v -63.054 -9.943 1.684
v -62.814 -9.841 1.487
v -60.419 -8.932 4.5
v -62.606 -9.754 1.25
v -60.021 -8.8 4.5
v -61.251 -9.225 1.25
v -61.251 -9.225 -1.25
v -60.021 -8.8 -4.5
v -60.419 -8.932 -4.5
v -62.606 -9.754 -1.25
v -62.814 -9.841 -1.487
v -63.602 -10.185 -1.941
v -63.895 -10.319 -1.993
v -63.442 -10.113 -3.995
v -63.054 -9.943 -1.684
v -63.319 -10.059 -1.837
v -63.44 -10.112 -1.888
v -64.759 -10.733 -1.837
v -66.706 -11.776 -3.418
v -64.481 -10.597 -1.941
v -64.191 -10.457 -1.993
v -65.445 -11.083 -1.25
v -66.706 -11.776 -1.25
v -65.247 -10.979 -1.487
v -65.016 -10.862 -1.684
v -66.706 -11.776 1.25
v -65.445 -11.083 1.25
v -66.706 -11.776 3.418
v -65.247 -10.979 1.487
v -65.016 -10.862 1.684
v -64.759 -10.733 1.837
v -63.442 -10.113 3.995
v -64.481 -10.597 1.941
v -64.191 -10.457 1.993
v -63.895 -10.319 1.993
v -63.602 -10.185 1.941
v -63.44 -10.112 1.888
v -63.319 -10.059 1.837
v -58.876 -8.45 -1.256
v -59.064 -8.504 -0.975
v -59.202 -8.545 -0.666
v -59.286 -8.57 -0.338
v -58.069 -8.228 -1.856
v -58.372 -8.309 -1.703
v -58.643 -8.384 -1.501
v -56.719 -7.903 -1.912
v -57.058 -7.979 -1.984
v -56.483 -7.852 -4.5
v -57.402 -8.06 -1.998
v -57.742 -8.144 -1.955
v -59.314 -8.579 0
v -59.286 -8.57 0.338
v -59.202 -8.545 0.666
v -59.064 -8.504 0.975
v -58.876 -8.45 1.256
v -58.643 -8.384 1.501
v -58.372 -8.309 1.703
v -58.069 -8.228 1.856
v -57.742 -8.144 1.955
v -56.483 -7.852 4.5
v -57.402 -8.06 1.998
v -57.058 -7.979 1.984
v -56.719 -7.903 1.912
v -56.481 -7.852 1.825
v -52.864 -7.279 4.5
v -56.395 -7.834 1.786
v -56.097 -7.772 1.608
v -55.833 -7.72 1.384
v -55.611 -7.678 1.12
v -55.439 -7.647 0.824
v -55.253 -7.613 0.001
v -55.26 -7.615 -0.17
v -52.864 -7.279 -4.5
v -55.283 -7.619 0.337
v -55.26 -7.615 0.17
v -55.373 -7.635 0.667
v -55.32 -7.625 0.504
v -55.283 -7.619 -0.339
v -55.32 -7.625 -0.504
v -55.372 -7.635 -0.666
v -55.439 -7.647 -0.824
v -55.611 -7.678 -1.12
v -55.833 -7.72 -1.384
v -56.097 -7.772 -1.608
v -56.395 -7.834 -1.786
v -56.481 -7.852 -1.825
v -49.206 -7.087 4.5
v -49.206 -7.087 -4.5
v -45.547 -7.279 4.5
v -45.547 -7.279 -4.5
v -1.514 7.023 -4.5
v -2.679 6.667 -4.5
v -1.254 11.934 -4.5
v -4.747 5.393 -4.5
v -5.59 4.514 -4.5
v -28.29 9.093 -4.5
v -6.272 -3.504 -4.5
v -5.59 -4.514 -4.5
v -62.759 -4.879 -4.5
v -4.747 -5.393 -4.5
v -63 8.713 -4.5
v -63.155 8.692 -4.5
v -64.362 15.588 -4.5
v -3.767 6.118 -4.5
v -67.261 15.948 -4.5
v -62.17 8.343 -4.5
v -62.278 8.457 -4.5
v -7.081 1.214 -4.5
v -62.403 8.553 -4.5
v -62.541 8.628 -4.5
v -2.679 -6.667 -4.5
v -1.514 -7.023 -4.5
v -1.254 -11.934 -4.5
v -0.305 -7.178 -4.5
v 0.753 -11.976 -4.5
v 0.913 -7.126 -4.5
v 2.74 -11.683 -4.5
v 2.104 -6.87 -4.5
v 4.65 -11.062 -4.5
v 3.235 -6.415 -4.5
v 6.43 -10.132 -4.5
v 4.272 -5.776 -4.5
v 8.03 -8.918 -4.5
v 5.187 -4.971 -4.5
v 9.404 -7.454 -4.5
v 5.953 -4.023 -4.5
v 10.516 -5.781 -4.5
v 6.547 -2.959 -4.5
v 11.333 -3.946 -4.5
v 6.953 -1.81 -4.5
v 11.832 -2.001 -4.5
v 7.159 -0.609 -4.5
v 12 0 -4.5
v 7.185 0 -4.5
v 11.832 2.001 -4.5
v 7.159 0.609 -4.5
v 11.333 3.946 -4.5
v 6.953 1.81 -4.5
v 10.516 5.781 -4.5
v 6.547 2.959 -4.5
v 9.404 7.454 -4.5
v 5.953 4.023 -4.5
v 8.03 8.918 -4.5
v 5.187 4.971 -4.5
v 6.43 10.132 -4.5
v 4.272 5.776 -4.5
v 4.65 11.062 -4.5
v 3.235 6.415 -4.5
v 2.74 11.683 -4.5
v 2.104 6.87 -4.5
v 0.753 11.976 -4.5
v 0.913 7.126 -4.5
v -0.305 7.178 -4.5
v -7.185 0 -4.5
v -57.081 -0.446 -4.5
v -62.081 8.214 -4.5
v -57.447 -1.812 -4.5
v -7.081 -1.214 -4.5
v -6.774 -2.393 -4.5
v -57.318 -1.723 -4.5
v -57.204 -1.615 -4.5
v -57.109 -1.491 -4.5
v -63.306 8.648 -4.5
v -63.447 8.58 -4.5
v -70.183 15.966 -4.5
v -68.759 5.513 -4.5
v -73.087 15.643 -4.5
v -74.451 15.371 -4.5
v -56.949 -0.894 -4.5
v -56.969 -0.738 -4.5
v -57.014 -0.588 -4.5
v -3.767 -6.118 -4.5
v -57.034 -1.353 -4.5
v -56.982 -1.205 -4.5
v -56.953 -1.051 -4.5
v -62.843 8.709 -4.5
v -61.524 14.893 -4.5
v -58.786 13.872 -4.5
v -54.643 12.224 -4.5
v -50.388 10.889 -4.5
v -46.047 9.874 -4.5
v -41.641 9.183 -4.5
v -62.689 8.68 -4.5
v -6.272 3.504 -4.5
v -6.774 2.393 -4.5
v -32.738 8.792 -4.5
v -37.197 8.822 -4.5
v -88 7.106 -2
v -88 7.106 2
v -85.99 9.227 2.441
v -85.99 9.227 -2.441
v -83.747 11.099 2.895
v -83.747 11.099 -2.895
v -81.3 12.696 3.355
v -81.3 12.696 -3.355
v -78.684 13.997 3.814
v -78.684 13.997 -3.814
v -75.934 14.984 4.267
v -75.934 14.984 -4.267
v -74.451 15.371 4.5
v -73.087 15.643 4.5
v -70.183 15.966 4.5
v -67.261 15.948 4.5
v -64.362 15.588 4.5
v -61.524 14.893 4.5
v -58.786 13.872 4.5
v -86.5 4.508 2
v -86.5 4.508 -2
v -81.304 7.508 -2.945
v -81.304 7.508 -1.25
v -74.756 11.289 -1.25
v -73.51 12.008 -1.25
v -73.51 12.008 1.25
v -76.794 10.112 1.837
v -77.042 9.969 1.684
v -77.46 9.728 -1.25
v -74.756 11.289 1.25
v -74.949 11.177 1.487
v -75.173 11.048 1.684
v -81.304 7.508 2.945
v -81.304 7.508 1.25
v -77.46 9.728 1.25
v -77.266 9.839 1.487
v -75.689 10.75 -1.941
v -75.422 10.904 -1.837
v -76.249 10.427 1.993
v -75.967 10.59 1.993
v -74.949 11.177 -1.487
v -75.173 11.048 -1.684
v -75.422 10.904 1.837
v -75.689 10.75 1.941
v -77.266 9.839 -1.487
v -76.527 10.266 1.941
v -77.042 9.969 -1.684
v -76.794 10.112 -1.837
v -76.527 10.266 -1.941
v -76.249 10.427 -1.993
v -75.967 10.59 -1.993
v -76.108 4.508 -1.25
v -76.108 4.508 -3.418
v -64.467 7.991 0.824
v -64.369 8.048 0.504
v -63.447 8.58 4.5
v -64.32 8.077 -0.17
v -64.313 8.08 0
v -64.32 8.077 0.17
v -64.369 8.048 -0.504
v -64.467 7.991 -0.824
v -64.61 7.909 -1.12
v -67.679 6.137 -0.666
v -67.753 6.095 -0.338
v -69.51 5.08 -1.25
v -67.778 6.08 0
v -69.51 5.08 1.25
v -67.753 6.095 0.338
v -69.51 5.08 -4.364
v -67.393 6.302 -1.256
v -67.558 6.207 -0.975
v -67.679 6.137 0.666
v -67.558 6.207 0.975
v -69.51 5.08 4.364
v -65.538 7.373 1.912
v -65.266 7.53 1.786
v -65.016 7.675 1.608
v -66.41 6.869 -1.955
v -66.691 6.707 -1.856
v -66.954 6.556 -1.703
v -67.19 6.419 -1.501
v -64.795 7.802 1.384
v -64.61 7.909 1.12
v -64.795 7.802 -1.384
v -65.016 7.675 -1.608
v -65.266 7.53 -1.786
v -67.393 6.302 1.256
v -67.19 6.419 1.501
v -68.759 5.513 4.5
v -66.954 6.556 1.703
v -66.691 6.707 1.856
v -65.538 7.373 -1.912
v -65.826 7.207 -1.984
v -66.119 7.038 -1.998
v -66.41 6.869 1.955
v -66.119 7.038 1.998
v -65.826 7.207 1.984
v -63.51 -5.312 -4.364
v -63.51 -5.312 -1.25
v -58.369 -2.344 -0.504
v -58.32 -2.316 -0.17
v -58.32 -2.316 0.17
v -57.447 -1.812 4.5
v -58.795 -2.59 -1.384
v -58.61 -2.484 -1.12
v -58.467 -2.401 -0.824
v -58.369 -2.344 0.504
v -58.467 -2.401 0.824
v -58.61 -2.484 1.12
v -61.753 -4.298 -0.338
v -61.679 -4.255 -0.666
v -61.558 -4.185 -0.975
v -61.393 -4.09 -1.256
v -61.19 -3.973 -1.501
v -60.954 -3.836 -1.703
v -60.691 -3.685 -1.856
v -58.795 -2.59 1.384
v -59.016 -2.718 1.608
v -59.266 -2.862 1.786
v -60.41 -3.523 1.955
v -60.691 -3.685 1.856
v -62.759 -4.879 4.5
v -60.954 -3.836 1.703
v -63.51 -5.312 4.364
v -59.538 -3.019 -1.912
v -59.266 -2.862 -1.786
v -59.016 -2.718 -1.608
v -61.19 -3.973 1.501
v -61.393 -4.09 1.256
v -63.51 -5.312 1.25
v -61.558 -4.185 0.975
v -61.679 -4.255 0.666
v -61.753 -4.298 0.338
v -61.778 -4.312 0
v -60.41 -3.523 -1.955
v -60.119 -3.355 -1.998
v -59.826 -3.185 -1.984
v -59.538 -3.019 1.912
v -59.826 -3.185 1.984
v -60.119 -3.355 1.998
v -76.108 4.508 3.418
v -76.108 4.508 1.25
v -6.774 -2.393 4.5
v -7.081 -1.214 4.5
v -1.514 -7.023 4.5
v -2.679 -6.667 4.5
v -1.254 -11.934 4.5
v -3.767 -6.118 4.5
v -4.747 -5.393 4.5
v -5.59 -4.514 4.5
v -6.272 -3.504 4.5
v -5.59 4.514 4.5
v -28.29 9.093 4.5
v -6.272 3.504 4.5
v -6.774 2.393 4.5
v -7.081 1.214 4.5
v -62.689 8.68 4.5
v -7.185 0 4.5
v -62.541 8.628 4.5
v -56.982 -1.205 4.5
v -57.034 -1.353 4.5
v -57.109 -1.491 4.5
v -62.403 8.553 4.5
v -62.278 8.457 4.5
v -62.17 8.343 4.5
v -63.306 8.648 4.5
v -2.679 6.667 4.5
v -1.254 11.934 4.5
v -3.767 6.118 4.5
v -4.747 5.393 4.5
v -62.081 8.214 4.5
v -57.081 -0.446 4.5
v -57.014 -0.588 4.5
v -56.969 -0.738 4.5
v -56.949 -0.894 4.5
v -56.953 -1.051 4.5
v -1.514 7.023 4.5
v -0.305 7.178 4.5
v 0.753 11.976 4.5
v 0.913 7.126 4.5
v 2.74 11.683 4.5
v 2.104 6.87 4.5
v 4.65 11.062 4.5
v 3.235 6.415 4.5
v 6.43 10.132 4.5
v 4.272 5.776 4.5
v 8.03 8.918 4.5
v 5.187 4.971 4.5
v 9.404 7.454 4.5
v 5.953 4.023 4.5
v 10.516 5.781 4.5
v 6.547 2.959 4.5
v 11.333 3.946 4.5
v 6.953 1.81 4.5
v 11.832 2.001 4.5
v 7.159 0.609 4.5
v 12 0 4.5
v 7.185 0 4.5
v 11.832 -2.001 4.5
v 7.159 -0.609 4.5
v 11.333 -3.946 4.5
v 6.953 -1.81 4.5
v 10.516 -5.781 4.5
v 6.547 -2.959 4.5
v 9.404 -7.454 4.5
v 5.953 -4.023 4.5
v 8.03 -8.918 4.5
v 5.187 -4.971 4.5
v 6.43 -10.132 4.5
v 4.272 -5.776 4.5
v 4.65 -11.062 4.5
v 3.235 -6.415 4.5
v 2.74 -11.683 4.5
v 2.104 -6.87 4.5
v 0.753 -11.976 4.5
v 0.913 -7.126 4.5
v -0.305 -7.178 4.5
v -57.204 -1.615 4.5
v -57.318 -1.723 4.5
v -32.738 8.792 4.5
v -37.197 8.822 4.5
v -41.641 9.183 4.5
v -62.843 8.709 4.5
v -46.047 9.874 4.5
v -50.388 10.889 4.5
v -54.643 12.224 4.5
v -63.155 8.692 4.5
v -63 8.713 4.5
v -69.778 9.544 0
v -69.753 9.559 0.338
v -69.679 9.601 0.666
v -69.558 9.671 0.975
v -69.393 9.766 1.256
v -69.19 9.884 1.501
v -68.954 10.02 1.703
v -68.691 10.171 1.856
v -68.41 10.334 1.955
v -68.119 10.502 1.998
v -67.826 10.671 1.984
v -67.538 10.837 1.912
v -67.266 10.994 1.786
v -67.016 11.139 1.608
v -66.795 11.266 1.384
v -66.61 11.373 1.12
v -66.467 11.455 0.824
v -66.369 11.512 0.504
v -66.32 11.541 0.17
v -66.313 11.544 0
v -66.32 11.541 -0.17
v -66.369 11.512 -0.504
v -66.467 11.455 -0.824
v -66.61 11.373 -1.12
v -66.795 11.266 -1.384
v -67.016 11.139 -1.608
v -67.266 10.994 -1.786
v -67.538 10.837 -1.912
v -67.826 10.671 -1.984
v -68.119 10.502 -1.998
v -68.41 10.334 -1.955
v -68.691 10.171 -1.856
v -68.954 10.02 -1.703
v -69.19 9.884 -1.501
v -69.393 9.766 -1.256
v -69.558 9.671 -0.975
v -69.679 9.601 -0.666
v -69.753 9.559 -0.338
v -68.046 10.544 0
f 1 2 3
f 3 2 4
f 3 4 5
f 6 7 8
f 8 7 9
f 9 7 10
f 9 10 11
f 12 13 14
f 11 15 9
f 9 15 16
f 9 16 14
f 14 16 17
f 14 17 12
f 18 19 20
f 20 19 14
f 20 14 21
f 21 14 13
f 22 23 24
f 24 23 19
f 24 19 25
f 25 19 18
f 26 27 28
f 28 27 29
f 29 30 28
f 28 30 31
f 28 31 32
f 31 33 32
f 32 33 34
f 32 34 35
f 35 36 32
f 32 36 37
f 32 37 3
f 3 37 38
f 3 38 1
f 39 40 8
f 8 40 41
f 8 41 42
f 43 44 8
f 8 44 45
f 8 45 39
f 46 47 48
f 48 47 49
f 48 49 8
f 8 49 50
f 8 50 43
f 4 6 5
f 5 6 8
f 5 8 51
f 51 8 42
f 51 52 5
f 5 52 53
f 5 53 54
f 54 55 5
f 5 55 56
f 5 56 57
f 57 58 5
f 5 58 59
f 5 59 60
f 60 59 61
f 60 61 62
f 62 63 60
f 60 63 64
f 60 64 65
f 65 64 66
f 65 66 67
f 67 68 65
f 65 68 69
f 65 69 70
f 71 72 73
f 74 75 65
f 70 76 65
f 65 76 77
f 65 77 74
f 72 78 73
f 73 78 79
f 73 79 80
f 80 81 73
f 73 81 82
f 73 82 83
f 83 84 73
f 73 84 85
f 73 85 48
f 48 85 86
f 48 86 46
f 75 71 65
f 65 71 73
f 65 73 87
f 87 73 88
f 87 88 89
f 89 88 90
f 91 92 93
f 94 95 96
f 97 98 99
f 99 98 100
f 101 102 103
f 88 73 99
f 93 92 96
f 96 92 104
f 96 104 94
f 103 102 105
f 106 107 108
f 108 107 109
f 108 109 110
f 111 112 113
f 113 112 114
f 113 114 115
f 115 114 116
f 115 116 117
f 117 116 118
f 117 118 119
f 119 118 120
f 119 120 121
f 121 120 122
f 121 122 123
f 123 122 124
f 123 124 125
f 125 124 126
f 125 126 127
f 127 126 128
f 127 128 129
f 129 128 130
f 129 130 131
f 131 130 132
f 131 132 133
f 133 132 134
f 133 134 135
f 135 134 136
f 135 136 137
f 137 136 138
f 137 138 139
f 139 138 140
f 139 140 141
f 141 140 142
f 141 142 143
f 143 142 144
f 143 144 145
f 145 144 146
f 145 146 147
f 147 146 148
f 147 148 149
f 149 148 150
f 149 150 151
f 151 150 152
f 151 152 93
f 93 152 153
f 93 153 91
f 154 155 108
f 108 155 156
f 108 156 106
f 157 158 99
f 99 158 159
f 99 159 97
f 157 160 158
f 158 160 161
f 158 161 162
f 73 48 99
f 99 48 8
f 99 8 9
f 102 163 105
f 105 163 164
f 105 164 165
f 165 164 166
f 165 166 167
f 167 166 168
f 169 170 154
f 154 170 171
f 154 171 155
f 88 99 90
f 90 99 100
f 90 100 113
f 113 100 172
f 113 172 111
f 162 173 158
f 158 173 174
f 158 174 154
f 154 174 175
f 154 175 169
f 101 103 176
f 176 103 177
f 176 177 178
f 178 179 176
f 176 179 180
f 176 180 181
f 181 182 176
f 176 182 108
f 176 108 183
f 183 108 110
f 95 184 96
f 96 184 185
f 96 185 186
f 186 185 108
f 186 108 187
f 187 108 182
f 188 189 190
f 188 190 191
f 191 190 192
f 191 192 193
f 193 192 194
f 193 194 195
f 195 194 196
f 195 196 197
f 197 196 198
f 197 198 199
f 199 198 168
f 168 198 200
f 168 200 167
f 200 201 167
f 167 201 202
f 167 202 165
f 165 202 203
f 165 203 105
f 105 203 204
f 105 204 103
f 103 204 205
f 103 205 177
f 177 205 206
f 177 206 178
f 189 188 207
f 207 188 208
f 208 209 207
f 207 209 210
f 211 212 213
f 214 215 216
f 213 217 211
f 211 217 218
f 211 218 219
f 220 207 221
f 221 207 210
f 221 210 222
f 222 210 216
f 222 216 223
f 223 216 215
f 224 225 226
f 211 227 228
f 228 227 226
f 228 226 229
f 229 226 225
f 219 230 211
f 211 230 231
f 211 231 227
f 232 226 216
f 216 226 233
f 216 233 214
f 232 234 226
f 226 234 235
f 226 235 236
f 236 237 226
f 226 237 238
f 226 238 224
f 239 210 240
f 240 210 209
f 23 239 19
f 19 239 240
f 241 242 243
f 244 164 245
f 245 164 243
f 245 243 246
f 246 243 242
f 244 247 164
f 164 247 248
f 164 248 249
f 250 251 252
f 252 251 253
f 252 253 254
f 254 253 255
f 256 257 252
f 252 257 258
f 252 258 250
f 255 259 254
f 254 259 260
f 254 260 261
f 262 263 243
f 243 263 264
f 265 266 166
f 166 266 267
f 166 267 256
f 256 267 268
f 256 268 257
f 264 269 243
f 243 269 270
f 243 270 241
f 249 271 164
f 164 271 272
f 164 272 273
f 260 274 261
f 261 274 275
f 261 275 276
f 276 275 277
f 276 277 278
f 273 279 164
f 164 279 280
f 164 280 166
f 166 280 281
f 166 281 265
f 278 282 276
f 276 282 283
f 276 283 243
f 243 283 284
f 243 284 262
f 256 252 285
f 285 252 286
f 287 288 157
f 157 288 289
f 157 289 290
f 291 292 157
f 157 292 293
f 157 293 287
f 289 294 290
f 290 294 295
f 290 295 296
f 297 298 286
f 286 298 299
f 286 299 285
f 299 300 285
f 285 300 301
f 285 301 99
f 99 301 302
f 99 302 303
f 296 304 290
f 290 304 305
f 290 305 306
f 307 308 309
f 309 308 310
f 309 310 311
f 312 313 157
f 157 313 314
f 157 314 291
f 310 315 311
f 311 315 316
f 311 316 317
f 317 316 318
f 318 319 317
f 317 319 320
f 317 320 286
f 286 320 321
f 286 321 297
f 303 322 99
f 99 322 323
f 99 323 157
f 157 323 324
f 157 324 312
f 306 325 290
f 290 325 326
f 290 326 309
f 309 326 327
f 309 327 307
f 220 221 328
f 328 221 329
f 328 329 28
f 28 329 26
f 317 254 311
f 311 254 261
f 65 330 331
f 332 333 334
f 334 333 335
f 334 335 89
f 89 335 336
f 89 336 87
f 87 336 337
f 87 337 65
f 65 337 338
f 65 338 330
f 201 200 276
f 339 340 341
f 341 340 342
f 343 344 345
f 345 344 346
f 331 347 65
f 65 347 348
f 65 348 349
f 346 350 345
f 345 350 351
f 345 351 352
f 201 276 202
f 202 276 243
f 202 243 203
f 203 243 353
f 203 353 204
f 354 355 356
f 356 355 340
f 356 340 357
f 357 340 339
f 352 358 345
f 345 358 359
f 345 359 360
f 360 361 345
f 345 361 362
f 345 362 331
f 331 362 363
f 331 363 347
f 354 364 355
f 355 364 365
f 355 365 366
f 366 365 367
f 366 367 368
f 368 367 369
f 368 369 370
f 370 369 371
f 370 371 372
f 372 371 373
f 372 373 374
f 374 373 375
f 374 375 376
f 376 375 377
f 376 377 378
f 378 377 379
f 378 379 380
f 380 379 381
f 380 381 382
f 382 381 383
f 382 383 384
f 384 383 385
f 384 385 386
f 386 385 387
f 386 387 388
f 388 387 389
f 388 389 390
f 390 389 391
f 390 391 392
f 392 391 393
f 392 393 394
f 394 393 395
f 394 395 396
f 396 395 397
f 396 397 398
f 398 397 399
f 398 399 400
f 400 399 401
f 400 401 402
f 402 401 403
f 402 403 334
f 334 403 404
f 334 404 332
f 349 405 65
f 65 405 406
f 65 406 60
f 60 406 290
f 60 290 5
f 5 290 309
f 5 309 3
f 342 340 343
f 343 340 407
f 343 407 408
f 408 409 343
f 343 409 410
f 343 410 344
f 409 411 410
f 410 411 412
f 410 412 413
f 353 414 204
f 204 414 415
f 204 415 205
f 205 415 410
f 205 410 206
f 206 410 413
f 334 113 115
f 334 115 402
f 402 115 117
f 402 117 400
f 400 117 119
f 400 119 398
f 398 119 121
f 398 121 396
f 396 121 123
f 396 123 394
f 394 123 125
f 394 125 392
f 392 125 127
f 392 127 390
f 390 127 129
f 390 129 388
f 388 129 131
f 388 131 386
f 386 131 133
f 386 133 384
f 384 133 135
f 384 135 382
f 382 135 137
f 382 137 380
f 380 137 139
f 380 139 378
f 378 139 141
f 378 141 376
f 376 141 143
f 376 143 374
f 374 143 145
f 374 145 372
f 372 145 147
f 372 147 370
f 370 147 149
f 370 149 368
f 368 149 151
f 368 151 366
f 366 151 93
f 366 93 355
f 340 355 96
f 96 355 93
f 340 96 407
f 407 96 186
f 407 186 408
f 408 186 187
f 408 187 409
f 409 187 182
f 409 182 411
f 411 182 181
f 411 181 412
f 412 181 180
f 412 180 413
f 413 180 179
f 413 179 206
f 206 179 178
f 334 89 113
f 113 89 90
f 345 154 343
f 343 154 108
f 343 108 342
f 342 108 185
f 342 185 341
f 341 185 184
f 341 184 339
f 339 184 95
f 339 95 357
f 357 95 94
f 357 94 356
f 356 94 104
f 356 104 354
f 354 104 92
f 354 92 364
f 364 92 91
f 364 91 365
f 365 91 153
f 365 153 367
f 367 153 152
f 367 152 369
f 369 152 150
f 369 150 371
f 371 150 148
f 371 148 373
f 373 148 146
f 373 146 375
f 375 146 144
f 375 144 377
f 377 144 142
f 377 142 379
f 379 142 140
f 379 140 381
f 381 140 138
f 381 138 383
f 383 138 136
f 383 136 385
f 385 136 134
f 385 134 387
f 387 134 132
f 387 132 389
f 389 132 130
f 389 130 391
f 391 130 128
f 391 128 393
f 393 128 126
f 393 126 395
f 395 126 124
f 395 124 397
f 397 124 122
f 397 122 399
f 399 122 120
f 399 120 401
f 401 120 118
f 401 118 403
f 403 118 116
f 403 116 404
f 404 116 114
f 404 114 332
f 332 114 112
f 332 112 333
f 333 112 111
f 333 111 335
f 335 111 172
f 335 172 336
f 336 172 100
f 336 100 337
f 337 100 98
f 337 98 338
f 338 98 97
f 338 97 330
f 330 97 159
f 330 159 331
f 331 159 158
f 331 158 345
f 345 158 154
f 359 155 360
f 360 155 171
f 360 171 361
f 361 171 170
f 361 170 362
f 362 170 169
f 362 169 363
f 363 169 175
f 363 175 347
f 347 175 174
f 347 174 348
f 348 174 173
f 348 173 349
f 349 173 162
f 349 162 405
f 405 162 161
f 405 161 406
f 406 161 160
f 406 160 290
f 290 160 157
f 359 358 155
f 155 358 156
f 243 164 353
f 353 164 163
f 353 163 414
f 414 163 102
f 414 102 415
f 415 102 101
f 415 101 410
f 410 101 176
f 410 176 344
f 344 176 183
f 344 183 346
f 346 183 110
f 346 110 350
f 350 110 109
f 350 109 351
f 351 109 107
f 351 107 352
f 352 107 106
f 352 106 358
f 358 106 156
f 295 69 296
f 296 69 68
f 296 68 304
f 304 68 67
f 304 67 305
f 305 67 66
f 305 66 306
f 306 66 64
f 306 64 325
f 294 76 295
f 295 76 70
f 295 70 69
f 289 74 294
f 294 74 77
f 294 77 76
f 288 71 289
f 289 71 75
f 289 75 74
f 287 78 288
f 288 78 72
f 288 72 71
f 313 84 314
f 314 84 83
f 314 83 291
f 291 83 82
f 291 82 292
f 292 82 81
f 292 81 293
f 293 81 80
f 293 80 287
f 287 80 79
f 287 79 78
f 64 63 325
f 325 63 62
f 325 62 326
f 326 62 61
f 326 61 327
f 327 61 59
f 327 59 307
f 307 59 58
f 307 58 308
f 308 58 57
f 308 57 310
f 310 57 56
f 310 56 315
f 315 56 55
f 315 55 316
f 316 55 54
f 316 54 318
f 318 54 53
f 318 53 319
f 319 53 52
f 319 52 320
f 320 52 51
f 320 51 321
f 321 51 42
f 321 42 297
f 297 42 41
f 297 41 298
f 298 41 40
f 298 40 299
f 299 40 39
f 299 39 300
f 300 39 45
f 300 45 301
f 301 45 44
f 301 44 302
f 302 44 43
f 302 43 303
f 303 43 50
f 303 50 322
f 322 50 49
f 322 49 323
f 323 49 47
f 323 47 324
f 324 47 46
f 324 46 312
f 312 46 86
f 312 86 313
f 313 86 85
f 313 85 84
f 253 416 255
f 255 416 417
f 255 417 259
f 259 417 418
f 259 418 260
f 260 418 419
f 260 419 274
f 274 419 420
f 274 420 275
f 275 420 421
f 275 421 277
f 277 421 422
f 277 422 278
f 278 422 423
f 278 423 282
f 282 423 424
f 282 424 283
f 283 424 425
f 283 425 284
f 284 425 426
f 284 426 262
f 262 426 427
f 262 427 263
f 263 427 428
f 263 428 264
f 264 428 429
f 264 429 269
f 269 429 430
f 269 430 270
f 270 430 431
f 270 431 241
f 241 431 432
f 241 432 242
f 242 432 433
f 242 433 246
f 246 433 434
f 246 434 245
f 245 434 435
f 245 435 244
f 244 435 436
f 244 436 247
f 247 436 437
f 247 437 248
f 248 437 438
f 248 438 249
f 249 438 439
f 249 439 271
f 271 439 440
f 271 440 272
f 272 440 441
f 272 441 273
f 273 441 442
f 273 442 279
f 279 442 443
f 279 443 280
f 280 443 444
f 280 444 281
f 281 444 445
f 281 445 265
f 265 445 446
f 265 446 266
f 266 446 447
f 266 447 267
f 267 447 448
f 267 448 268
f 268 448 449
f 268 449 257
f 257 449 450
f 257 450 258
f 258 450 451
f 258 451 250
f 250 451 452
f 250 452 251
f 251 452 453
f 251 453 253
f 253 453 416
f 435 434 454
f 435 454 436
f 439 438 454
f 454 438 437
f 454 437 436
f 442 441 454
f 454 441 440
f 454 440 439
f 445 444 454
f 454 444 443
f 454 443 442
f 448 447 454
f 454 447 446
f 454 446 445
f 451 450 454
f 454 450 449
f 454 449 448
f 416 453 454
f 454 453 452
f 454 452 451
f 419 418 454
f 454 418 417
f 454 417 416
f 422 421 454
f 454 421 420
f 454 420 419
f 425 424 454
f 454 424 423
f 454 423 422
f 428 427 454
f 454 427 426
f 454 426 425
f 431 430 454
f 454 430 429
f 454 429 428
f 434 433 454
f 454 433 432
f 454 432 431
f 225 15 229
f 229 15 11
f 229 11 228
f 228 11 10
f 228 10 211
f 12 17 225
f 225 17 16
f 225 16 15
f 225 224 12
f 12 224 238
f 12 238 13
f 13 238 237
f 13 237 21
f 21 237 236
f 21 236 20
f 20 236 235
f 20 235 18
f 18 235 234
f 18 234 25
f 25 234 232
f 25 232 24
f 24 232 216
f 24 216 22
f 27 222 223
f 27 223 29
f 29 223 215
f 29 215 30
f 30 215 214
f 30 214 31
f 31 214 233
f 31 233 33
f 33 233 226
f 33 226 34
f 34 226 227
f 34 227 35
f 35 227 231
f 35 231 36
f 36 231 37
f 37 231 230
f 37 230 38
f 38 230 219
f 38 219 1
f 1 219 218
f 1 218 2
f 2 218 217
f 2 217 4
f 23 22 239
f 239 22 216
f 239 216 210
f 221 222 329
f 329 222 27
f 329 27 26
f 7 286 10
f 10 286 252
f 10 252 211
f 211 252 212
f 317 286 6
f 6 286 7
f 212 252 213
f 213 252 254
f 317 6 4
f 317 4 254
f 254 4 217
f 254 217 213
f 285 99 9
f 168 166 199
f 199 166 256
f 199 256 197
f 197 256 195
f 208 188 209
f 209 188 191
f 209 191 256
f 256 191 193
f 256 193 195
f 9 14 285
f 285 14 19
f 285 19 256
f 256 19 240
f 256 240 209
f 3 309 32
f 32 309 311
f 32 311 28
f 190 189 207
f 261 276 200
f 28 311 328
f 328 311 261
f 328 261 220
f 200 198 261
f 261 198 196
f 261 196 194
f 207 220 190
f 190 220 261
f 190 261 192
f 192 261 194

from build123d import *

# Parameters (mm, degrees)
SKETCH1_R               = 7.18463753
BOSS_EXTRUDE1_DEPTH     = 4.5
CUT_EXTRUDE2_START      = 4
SKETCH4_R               = 2
CUT_EXTRUDE2_DEPTH      = 29
CUT_EXTRUDE3_DEPTH      = 29
CUT_EXTRUDE4_DEPTH      = 29
CUT_EXTRUDE4_DEPTH_BACK = 29


with BuildPart() as part:
    # Sketch1 → Boss-Extrude1 (new, symmetric)
    with BuildSketch(Plane.XY):
        with BuildLine():
            Line((-1.254341559, 11.934262744), (-28.289662127, 9.092736051))
            ThreePointArc((-28.289662127, 9.092736051), (-43.850490966, 9.48747573), (-58.786122703, 13.871779345))
            ThreePointArc((-58.786122703, 13.871779345), (-74.520010862, 15.355444557), (-88, 7.106420865))
            Line((-88, 7.106420865), (-86.5, 4.508344654))
            Line((-86.5, 4.508344654), (-81.303847577, 7.508344654))
            Line((-81.303847577, 7.508344654), (-76.107695155, 4.508344654))
            Line((-76.107695155, 4.508344654), (-66.705771366, -11.776265037))
            ThreePointArc((-66.705771366, -11.776265037), (-56.482680545, -7.851988144), (-45.547275152, -7.278887832))
            Line((-45.547275152, -7.278887832), (-1.254341559, -11.934262744))
            ThreePointArc((-1.254341559, -11.934262744), (12, 0), (-1.254341559, 11.934262744))
        make_face()
        Circle(SKETCH1_R, mode=Mode.SUBTRACT)
        with BuildLine():
            Line((-69.509618943, 5.080141424), (-63.509618943, -5.312163422))
            Line((-63.509618943, -5.312163422), (-57.447441117, -1.812163422))
            ThreePointArc((-57.447441117, -1.812163422), (-56.98151529, -1.204957063), (-57.081415713, -0.446138018))
            Line((-57.081415713, -0.446138018), (-62.081415713, 8.21411602))
            ThreePointArc((-62.081415713, 8.21411602), (-62.688622072, 8.680041846), (-63.447441117, 8.580141424))
            Line((-63.447441117, 8.580141424), (-69.509618943, 5.080141424))
        make_face(mode=Mode.SUBTRACT)
    extrude(amount=BOSS_EXTRUDE1_DEPTH, both=True)

    # Sketch4 → Cut-Extrude2 (cut)
    with BuildSketch(Plane(origin=(-23.5771705, 40.836857204, 0), x_dir=(0.8660254037844386, 0.5000000000000003, 0), z_dir=(0.5000000000000003, -0.8660254037844386, 0)).offset(CUT_EXTRUDE2_START)):
        with Locations((-53.6570251, 0)):
            Circle(SKETCH4_R)
    extrude(amount=CUT_EXTRUDE2_DEPTH, mode=Mode.SUBTRACT)

    # Sketch4<4> → Cut-Extrude3 (cut)
    with BuildSketch(Plane(origin=(-23.5771705, 40.836857204, 0), x_dir=(0.8660254037844386, 0.5000000000000003, 0), z_dir=(0.5000000000000003, -0.8660254037844386, 0))):
        with BuildLine():
            Line((-59.095775601, -1.25), (-57.6570251, -1.25))
            Line((-57.6570251, -1.25), (-57.6570251, 1.25))
            Line((-57.6570251, 1.25), (-59.095775601, 1.25))
            ThreePointArc((-59.095775601, 1.25), (-60.6570251, 2), (-62.2182746, 1.25))
            Line((-62.2182746, 1.25), (-66.6570251, 1.25))
            Line((-66.6570251, 1.25), (-66.6570251, -1.25))
            Line((-66.6570251, -1.25), (-62.2182746, -1.25))
            ThreePointArc((-62.2182746, -1.25), (-60.6570251, -2), (-59.095775601, -1.25))
        make_face()
    extrude(amount=CUT_EXTRUDE3_DEPTH, mode=Mode.SUBTRACT)

    # Sketch4<6> → Cut-Extrude4 (cut, two sides: drawn at the far end of the back side and taken through both)
    with BuildSketch(Plane(origin=(-23.5771705, 40.836857204, 0), x_dir=(0.8660254037844386, 0.5000000000000003, 0), z_dir=(0.5000000000000003, -0.8660254037844386, 0)).offset(-CUT_EXTRUDE4_DEPTH_BACK)):
        Polygon((-56.790792146, 4.5), (-72.6570251, 4.5), (-72.6570251, 2), align=None)
        Polygon((-56.790792146, -4.5), (-72.6570251, -2), (-72.6570251, -4.5), align=None)
    extrude(amount=CUT_EXTRUDE4_DEPTH + CUT_EXTRUDE4_DEPTH_BACK, mode=Mode.SUBTRACT)


solid = part.part
